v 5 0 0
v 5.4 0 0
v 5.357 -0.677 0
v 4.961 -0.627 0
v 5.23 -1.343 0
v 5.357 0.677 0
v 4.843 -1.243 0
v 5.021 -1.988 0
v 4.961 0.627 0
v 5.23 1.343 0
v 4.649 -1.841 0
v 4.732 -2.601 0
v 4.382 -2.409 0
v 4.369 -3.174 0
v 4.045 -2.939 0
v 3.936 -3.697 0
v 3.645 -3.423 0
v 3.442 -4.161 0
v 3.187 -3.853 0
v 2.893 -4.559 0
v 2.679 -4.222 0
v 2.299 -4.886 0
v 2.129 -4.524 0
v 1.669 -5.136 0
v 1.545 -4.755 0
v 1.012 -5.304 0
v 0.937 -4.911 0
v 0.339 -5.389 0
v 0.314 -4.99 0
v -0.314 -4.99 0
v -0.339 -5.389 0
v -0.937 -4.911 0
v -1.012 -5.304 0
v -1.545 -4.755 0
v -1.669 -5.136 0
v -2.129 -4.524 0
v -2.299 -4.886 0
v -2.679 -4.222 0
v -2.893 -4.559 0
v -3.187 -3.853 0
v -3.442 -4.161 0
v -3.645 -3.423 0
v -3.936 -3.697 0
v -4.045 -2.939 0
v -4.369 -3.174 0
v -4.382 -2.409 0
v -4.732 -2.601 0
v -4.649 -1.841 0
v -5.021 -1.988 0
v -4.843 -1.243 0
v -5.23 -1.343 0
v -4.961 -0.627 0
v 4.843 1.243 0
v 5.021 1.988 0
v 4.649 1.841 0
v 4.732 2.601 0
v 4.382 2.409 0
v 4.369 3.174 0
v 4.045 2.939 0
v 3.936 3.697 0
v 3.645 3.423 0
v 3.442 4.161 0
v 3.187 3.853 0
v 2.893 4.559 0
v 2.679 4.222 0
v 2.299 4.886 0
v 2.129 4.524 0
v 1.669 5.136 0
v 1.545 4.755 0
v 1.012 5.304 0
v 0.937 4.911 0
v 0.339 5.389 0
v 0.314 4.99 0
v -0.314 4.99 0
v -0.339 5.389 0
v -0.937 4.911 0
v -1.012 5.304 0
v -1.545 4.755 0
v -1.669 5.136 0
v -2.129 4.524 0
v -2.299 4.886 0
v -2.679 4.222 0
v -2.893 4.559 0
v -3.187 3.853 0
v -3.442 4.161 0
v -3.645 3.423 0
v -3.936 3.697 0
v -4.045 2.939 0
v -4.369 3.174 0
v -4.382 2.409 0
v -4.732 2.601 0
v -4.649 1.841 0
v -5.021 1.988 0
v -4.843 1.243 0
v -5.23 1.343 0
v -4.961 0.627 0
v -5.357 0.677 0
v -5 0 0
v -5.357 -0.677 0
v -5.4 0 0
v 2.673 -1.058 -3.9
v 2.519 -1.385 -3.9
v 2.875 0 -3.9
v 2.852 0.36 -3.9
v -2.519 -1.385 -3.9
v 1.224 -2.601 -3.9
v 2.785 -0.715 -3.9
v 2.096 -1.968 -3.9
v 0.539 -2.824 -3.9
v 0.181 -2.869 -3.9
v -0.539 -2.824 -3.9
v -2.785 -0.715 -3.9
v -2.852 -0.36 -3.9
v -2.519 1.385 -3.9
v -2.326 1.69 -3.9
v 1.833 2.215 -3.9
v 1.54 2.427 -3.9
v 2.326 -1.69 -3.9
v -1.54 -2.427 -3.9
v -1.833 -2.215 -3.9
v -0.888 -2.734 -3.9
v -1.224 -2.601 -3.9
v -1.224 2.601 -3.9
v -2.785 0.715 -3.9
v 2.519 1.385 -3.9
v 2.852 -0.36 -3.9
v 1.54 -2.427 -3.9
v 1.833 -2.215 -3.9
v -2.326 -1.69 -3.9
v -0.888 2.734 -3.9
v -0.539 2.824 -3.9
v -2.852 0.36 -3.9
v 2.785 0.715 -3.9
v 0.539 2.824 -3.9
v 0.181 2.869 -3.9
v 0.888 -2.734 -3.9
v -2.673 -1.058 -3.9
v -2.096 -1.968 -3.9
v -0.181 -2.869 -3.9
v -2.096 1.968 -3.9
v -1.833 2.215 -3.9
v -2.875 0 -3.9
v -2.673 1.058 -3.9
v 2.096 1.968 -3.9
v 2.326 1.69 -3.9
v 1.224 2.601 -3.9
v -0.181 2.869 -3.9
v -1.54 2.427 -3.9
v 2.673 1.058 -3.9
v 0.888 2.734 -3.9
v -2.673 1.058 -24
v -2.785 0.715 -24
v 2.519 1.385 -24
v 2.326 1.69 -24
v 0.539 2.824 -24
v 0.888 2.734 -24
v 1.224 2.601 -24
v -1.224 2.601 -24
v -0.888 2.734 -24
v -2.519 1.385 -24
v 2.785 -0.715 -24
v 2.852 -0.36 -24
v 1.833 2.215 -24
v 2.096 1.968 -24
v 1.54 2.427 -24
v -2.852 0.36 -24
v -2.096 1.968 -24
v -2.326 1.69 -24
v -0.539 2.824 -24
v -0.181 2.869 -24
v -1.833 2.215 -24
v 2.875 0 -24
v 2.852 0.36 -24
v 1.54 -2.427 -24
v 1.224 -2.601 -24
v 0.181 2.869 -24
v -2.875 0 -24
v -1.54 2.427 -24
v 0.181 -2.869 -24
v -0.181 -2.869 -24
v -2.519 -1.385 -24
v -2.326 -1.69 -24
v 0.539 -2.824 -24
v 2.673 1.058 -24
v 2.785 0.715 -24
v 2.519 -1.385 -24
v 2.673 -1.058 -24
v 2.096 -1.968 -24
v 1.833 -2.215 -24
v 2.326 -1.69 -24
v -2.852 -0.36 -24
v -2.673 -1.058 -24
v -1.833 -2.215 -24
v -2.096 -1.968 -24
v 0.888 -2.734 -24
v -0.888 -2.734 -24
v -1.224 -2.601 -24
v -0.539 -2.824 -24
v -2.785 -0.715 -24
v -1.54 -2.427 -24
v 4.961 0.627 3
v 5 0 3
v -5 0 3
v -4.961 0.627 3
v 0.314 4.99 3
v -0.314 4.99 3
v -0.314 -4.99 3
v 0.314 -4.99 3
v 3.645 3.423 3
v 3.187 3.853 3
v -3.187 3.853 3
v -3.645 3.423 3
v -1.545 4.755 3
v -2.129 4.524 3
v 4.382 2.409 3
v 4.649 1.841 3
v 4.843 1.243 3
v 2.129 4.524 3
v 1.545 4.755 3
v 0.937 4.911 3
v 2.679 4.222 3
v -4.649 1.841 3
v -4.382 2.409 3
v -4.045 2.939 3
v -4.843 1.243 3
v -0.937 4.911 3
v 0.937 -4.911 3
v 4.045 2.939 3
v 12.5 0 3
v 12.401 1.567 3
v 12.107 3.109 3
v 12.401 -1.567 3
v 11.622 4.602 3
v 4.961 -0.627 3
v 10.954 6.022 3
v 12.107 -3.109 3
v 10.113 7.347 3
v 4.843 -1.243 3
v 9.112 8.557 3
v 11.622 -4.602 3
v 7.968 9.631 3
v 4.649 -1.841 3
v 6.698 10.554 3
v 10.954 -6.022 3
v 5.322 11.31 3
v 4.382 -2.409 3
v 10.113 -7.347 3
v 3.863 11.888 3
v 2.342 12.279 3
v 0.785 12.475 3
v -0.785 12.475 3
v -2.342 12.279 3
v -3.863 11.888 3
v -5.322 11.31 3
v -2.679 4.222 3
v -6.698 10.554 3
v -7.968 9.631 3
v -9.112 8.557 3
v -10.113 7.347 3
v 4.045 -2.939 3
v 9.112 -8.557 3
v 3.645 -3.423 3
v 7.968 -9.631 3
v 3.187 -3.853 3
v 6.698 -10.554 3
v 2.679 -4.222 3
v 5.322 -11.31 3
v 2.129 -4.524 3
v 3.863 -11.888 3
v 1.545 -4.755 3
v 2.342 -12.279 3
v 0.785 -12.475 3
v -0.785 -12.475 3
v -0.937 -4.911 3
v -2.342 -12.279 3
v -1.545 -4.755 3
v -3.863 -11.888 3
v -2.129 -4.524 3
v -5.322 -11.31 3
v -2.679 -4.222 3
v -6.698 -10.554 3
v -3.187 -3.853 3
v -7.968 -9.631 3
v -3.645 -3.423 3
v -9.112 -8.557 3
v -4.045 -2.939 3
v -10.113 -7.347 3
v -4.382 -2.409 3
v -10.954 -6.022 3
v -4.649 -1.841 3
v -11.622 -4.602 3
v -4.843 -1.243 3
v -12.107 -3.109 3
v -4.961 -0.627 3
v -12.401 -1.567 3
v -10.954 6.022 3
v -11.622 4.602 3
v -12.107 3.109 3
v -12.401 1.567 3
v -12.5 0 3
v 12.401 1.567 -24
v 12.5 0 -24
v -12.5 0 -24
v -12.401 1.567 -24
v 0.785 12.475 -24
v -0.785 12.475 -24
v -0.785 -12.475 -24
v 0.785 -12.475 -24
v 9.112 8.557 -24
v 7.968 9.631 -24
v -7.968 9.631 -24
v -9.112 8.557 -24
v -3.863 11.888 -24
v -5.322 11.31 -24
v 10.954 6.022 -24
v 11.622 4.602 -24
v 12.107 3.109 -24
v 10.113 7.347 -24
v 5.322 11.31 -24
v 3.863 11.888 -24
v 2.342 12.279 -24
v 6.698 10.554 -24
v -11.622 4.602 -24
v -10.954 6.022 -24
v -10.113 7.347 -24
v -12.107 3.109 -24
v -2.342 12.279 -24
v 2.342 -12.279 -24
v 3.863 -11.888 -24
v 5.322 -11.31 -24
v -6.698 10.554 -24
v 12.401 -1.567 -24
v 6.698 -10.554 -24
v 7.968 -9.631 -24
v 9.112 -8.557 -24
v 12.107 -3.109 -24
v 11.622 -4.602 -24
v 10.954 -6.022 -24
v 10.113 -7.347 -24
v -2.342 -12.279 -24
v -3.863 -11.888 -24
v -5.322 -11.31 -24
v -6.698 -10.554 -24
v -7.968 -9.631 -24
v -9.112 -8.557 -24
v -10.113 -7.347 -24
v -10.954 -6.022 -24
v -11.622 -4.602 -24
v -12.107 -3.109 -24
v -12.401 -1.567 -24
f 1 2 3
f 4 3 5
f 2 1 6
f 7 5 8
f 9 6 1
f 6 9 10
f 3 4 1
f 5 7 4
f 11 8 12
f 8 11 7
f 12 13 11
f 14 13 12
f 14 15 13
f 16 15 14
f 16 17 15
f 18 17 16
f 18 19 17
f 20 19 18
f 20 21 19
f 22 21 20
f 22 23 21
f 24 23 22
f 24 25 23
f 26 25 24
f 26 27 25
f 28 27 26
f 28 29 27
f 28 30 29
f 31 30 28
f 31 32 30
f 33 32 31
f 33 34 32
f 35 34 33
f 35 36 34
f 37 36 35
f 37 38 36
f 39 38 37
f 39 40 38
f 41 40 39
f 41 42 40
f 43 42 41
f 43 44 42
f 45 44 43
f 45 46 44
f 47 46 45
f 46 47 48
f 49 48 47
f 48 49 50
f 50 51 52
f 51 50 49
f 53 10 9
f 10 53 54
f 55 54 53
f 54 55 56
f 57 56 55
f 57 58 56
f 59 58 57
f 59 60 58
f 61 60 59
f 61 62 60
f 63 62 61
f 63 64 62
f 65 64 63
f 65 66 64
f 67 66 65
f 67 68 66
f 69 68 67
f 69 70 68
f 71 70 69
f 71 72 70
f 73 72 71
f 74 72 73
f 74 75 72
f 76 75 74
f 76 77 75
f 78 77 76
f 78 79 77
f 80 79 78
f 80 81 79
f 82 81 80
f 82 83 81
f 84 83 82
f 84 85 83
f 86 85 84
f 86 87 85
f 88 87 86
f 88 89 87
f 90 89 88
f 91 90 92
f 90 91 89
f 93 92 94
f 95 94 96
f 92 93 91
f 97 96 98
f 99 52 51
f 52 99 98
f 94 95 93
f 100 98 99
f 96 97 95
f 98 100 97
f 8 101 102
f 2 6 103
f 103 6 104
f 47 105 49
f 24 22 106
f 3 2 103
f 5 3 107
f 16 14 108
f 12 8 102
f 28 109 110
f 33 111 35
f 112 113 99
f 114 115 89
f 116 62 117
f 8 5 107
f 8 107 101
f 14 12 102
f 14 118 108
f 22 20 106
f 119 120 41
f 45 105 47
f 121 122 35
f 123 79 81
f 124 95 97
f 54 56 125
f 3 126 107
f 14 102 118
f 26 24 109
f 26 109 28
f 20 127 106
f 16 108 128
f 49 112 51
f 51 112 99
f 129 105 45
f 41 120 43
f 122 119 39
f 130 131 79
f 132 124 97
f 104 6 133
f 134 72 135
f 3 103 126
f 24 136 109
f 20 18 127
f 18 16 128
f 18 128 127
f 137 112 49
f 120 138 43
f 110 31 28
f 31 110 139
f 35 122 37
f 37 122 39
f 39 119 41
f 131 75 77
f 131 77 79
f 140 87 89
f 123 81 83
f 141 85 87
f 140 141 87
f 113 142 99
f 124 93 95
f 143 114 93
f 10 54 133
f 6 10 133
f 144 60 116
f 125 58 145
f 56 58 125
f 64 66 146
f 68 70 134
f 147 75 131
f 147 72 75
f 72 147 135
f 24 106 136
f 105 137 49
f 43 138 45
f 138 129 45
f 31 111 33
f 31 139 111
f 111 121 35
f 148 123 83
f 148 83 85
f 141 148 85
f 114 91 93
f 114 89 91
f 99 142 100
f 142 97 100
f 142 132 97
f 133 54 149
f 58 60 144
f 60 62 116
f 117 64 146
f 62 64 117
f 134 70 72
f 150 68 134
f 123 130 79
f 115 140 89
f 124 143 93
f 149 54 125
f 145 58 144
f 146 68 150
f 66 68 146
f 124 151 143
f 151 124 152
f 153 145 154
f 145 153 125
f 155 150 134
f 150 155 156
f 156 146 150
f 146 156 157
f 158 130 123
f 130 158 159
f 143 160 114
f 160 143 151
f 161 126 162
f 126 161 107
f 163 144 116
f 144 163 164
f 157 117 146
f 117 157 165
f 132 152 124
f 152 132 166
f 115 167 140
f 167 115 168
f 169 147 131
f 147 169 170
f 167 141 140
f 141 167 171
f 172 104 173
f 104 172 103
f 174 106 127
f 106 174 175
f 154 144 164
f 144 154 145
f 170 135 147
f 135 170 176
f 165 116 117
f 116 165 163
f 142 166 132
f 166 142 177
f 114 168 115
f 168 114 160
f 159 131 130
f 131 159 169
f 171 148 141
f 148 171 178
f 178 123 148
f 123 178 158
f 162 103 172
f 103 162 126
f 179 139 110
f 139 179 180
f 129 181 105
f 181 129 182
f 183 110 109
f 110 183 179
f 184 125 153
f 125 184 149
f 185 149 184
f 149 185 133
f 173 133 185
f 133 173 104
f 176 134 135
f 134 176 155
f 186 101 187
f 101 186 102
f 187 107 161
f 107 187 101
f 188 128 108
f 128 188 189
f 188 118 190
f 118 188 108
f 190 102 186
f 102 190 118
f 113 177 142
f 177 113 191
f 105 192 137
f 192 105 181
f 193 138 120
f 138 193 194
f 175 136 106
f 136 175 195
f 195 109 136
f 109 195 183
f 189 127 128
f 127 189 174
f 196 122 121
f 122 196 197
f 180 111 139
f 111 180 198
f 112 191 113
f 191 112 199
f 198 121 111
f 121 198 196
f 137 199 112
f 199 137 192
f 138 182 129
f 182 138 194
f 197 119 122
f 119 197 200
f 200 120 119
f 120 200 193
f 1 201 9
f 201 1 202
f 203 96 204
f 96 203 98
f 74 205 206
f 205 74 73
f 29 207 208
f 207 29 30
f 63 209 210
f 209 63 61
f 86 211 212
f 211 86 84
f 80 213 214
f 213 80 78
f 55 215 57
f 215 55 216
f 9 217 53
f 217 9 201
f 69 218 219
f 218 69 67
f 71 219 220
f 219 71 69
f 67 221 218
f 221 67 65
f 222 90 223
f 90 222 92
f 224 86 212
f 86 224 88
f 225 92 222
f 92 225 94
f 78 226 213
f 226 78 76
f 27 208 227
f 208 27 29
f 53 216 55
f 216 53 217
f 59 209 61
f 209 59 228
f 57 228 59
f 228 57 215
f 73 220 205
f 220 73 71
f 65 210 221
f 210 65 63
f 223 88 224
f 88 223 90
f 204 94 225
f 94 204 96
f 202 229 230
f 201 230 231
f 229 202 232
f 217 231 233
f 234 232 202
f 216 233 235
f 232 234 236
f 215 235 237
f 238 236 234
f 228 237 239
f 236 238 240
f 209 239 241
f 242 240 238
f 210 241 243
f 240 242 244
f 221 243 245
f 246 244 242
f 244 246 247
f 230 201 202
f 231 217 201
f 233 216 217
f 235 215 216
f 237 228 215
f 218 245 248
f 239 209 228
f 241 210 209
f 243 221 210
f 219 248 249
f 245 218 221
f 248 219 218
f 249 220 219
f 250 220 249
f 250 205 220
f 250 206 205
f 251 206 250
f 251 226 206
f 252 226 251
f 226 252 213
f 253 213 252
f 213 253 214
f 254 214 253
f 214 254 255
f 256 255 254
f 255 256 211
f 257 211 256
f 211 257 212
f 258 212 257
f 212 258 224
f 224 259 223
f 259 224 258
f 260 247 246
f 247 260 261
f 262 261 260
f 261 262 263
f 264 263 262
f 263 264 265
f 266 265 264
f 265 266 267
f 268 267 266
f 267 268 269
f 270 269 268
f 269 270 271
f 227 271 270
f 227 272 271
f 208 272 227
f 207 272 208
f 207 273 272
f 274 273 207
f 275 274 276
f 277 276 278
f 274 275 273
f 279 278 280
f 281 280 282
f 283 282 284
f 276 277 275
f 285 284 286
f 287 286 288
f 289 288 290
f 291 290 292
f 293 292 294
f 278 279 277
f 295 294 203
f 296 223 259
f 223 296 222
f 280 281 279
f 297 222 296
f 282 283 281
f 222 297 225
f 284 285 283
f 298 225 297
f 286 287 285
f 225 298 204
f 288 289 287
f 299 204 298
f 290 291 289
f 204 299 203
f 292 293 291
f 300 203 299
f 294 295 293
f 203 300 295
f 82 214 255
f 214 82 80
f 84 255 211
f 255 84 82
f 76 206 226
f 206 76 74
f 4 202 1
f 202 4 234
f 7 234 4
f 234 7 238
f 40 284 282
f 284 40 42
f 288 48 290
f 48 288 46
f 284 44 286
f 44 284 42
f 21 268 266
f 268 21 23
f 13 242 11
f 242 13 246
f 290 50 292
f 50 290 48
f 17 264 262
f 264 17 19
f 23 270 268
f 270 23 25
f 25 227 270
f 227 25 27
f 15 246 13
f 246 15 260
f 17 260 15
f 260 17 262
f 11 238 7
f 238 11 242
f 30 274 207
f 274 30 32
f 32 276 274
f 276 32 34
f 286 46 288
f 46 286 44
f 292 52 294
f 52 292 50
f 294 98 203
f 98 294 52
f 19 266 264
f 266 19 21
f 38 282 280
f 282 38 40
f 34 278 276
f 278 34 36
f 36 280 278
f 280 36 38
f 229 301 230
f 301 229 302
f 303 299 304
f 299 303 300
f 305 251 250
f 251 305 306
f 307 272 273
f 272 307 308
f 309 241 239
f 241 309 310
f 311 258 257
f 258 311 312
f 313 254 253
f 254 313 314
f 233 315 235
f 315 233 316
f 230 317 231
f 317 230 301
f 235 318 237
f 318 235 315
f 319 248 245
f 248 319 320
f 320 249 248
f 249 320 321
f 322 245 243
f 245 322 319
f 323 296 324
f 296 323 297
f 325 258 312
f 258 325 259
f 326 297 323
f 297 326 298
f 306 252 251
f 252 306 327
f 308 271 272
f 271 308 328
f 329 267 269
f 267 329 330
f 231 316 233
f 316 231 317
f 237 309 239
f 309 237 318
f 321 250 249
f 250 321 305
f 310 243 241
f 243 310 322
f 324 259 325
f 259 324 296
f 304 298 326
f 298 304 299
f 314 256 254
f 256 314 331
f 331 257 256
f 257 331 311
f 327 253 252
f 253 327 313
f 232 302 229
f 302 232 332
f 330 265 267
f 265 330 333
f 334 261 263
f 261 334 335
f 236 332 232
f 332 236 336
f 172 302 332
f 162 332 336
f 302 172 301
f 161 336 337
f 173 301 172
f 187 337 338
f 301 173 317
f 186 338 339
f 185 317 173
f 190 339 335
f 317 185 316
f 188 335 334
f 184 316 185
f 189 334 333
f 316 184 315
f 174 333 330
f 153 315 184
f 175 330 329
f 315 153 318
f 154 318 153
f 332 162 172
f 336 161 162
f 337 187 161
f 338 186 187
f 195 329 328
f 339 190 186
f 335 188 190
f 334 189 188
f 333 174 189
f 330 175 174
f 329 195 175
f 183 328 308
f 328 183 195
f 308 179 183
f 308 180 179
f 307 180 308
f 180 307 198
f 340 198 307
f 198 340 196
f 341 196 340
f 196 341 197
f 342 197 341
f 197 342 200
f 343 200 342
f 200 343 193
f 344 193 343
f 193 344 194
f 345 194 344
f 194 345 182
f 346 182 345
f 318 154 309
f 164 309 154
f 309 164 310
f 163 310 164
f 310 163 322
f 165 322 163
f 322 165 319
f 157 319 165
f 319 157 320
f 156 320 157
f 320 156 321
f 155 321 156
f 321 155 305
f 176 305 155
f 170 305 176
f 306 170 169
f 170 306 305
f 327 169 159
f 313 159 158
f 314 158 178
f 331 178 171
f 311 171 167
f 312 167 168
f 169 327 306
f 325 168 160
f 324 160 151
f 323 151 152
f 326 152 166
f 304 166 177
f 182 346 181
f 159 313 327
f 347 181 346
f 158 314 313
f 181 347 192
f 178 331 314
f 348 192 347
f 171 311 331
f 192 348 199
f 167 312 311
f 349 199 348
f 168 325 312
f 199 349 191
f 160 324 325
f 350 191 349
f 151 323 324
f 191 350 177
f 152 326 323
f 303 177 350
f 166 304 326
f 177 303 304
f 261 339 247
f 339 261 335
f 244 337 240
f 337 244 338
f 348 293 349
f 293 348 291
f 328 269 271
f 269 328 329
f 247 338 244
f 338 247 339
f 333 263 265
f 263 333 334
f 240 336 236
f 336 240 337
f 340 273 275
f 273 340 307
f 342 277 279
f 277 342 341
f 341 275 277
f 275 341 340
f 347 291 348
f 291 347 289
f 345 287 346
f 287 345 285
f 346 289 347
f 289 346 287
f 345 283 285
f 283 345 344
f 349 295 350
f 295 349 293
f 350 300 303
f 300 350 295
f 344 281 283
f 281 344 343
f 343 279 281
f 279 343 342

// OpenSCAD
$fn = 50;

difference() {
	union() {
		translate(v = [0, 0, -24.0]) {
			cylinder(h = 27, r = 12.5);
		}
	}
	union() {
		translate(v = [0, 0, 0]) {
			rotate(a = [0, 0, 0]) {
				difference() {
					union() {
						translate(v = [0, 0, -27.0]) {
							cylinder(h = 27, r = 2.6);
						}
						translate(v = [0, 0, -3.9]) {
							cylinder(h = 3.9, r1 = 2.875, r2 = 5.4);
						}
						translate(v = [0, 0, -27.0]) {
							cylinder(h = 27, r = 2.875);
						}
						translate(v = [0, 0, -27.0]) {
							cylinder(h = 27, r = 2.6);
						}
					}
					union();
				}
			}
		}
		#cylinder(h = 3, r = 5.0);
	}
}
